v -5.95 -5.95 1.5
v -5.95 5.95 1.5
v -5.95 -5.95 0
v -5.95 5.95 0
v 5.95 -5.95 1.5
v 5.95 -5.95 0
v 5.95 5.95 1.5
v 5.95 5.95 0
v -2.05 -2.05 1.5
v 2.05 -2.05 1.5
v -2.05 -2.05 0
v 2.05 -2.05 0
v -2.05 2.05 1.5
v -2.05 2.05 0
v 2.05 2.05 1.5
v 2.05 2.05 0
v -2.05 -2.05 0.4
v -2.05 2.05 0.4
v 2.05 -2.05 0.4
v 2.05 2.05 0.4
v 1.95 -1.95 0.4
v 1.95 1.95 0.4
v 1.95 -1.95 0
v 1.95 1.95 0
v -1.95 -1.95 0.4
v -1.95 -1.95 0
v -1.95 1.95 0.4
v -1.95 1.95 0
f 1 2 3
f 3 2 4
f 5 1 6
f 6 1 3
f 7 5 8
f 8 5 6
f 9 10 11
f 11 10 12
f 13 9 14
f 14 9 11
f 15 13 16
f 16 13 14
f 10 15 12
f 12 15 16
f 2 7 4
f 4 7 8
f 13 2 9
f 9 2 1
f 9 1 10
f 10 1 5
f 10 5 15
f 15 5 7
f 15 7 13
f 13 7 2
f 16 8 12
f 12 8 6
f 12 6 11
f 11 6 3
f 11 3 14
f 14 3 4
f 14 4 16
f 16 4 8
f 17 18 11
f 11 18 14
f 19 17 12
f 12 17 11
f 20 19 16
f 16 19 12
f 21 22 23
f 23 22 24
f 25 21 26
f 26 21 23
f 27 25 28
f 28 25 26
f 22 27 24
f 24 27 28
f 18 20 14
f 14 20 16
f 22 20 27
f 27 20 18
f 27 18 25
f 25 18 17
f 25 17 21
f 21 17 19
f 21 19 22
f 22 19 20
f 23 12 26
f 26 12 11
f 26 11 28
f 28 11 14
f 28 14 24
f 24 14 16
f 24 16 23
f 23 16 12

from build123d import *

# Parameters (mm, degrees)
SKETCH1_W           = 11.9
SKETCH1_H           = 11.9
SKETCH1_W_2         = 4.1
SKETCH1_H_2         = 4.1
BOSS_EXTRUDE1_DEPTH = 1.5
SKETCH1_6_W         = 4.1
SKETCH1_6_H         = 4.1
SKETCH1_6_W_2       = 3.9
SKETCH1_6_H_2       = 3.9
BOSS_EXTRUDE2_DEPTH = 0.4


with BuildPart() as part:
    # Sketch1 → Boss-Extrude1 (new body)
    with BuildSketch(Plane.XY):
        Rectangle(SKETCH1_W, SKETCH1_H)
        Rectangle(SKETCH1_W_2, SKETCH1_H_2, mode=Mode.SUBTRACT)
    extrude(amount=BOSS_EXTRUDE1_DEPTH)


with BuildPart() as body_2:
    # Sketch1<6> → Boss-Extrude2 (new body)
    with BuildSketch(Plane.XY):
        Rectangle(SKETCH1_6_W, SKETCH1_6_H)
        Rectangle(SKETCH1_6_W_2, SKETCH1_6_H_2, mode=Mode.SUBTRACT)
    extrude(amount=BOSS_EXTRUDE2_DEPTH)


solid = Compound([part.part, body_2.part])
